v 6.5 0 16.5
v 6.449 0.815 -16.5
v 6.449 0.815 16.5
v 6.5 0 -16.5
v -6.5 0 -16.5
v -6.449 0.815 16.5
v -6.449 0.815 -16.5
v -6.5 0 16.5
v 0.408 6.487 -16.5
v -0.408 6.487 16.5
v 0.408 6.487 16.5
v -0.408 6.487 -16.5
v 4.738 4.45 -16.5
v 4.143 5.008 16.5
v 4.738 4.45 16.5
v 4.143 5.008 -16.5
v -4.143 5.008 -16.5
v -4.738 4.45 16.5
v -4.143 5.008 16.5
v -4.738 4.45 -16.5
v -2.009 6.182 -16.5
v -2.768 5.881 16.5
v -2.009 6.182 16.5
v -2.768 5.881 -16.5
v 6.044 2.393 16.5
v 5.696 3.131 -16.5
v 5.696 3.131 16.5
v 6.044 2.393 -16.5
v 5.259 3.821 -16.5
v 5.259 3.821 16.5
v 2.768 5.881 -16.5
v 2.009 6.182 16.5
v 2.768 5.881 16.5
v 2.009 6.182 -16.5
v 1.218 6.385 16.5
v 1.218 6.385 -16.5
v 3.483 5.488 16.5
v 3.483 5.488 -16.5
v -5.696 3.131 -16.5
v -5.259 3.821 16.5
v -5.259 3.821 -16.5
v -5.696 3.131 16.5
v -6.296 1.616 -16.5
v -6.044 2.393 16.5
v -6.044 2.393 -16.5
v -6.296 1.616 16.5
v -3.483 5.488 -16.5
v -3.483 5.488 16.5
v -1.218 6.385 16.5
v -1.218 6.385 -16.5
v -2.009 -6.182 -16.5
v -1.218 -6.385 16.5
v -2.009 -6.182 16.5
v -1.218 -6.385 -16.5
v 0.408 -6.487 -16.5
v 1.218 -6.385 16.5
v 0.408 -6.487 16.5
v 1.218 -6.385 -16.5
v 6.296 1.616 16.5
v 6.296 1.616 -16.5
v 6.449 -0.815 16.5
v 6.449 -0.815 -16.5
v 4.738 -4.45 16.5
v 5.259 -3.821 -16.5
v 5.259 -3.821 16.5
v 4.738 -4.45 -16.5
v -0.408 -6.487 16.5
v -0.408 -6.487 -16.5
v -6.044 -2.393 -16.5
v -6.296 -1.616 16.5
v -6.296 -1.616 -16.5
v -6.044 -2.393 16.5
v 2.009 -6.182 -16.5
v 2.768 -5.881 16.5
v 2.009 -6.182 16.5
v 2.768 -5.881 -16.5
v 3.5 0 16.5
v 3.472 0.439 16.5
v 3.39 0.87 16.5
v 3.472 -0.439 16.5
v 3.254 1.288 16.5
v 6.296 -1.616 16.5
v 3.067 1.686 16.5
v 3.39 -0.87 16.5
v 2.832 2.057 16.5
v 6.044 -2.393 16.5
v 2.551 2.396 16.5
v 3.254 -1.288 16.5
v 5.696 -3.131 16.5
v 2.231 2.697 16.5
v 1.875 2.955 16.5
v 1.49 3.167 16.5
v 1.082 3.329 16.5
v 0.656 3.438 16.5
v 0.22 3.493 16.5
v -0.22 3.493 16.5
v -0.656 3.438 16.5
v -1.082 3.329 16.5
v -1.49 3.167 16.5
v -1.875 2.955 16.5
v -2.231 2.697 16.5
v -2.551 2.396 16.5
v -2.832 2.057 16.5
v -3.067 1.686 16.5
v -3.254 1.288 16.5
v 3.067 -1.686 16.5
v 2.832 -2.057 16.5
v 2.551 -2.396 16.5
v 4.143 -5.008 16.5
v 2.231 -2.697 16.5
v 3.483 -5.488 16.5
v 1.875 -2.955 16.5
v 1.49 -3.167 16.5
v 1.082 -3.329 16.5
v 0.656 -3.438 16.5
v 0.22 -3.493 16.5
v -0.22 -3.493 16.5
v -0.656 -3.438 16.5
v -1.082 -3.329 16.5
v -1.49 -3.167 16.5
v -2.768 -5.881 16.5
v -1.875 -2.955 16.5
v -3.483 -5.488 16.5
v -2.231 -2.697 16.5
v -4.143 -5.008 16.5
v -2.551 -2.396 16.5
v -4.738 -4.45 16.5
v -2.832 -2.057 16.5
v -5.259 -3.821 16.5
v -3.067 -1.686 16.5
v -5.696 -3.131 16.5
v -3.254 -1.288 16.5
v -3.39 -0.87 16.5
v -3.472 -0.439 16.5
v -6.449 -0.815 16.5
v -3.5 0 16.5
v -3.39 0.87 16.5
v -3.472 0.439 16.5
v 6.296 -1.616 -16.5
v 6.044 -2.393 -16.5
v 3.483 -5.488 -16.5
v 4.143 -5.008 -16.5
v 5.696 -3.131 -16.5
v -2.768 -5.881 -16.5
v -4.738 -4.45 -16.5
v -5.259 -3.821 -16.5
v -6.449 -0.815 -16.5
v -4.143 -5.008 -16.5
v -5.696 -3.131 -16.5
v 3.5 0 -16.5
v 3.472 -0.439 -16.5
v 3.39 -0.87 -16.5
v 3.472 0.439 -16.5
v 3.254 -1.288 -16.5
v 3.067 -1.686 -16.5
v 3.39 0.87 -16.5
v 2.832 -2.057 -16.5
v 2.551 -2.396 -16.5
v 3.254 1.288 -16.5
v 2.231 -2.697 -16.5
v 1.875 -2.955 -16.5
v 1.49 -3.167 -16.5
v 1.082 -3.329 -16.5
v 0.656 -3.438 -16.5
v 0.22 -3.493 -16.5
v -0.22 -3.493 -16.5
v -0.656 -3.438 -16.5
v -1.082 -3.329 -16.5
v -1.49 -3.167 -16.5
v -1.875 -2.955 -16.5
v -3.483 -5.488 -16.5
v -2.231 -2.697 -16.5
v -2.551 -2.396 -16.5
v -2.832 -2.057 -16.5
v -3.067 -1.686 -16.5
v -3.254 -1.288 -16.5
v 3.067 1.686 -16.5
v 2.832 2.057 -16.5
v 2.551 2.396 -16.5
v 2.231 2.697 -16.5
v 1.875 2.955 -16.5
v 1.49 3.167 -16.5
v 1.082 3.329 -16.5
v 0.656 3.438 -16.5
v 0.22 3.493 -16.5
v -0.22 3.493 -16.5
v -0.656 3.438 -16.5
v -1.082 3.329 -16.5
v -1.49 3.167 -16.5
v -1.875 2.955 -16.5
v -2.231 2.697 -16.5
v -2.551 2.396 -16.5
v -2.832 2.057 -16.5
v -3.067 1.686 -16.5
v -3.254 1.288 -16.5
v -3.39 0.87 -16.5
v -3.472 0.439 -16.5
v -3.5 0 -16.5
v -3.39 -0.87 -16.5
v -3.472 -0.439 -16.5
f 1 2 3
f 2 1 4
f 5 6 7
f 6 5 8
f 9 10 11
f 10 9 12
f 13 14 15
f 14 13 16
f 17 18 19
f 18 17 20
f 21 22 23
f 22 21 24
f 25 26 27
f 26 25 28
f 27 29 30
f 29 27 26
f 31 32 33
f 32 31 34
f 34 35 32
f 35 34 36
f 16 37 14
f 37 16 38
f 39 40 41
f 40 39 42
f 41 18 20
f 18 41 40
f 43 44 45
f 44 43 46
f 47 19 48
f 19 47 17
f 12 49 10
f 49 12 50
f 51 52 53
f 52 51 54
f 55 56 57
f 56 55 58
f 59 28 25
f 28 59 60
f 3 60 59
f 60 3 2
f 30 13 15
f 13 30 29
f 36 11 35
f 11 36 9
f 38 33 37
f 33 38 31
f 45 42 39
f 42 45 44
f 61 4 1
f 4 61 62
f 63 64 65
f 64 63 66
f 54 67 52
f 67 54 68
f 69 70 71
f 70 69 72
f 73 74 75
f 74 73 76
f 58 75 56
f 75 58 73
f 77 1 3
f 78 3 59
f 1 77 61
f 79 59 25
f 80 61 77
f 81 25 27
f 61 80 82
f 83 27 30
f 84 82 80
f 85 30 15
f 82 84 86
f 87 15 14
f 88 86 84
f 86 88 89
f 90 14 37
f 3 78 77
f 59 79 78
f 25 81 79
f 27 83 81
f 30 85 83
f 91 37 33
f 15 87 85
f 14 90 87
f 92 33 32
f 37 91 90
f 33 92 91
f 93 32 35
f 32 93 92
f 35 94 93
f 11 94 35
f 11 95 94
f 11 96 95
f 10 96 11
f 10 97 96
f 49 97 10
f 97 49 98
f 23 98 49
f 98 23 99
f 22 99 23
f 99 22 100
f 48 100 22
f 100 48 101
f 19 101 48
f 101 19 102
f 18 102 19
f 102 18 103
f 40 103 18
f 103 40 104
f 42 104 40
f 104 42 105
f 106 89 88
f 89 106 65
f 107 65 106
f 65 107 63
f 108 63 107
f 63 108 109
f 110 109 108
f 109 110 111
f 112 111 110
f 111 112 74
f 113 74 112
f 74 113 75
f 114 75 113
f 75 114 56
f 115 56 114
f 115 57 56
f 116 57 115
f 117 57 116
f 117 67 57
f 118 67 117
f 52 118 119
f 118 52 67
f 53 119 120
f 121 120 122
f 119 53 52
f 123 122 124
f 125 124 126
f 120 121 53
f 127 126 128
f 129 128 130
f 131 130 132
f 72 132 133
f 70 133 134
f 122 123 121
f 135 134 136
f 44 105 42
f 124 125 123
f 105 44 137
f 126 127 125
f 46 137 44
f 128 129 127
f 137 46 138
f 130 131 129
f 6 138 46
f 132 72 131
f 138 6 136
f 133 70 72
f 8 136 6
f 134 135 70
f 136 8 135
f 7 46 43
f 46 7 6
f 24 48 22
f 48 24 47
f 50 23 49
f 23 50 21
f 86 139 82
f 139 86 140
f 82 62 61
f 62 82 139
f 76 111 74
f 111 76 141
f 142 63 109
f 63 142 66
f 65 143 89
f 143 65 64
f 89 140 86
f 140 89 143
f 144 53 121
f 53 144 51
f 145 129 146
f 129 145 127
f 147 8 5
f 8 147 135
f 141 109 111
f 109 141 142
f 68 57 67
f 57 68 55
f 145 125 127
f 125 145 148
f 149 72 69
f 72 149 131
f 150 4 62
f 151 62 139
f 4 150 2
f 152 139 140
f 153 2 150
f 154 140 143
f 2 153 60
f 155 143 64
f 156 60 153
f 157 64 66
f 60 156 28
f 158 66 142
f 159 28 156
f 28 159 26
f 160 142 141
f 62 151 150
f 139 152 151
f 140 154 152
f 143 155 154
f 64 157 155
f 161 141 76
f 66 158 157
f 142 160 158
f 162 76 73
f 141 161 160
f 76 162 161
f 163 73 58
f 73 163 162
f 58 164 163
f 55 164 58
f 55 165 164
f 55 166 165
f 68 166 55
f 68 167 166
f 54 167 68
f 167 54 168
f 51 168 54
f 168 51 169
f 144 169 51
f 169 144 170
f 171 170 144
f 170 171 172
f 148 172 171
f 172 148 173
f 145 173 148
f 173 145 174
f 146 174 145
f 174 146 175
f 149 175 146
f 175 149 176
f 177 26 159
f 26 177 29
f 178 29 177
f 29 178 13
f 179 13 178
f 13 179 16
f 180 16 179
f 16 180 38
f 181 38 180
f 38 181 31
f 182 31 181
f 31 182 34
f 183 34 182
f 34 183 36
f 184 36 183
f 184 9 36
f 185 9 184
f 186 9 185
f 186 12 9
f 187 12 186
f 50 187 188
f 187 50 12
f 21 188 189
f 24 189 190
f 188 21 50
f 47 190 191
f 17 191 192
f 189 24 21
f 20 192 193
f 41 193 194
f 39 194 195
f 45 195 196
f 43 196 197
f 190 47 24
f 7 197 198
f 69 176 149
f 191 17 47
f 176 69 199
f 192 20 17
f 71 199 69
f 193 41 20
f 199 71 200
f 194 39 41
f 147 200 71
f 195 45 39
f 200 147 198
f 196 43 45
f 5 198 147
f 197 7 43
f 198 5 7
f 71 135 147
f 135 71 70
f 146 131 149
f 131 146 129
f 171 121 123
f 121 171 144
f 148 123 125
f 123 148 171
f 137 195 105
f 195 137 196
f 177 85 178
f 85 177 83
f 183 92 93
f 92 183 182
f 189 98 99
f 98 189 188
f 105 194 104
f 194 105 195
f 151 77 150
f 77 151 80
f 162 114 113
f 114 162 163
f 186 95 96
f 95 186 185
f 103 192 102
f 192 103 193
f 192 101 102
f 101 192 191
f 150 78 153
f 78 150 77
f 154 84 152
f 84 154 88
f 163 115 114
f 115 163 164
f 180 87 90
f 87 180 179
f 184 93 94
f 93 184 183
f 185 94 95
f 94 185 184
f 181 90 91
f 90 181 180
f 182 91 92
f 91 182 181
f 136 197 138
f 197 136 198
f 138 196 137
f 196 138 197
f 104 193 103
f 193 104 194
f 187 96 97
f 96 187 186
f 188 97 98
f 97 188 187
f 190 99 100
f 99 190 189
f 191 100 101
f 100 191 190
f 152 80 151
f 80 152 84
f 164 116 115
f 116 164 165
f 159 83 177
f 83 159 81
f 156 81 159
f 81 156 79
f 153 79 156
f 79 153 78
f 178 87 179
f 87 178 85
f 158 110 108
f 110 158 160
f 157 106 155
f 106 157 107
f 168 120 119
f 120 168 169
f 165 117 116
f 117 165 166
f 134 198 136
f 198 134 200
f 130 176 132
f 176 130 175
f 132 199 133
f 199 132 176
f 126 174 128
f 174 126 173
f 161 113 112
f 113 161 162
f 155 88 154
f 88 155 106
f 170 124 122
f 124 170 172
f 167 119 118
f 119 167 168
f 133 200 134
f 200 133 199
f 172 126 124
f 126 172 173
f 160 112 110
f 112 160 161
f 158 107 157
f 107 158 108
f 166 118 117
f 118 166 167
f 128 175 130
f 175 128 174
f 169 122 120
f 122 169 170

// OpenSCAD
$fn = 50;


difference() {
	union() {
		translate(v = [0, 0, -16.5000000000]) {
			cylinder(h = 33, r = 6.5000000000);
		}
	}
	union() {
		translate(v = [0, 0, -100.0000000000]) {
			cylinder(h = 200, r = 3.5000000000);
		}
	}
}
